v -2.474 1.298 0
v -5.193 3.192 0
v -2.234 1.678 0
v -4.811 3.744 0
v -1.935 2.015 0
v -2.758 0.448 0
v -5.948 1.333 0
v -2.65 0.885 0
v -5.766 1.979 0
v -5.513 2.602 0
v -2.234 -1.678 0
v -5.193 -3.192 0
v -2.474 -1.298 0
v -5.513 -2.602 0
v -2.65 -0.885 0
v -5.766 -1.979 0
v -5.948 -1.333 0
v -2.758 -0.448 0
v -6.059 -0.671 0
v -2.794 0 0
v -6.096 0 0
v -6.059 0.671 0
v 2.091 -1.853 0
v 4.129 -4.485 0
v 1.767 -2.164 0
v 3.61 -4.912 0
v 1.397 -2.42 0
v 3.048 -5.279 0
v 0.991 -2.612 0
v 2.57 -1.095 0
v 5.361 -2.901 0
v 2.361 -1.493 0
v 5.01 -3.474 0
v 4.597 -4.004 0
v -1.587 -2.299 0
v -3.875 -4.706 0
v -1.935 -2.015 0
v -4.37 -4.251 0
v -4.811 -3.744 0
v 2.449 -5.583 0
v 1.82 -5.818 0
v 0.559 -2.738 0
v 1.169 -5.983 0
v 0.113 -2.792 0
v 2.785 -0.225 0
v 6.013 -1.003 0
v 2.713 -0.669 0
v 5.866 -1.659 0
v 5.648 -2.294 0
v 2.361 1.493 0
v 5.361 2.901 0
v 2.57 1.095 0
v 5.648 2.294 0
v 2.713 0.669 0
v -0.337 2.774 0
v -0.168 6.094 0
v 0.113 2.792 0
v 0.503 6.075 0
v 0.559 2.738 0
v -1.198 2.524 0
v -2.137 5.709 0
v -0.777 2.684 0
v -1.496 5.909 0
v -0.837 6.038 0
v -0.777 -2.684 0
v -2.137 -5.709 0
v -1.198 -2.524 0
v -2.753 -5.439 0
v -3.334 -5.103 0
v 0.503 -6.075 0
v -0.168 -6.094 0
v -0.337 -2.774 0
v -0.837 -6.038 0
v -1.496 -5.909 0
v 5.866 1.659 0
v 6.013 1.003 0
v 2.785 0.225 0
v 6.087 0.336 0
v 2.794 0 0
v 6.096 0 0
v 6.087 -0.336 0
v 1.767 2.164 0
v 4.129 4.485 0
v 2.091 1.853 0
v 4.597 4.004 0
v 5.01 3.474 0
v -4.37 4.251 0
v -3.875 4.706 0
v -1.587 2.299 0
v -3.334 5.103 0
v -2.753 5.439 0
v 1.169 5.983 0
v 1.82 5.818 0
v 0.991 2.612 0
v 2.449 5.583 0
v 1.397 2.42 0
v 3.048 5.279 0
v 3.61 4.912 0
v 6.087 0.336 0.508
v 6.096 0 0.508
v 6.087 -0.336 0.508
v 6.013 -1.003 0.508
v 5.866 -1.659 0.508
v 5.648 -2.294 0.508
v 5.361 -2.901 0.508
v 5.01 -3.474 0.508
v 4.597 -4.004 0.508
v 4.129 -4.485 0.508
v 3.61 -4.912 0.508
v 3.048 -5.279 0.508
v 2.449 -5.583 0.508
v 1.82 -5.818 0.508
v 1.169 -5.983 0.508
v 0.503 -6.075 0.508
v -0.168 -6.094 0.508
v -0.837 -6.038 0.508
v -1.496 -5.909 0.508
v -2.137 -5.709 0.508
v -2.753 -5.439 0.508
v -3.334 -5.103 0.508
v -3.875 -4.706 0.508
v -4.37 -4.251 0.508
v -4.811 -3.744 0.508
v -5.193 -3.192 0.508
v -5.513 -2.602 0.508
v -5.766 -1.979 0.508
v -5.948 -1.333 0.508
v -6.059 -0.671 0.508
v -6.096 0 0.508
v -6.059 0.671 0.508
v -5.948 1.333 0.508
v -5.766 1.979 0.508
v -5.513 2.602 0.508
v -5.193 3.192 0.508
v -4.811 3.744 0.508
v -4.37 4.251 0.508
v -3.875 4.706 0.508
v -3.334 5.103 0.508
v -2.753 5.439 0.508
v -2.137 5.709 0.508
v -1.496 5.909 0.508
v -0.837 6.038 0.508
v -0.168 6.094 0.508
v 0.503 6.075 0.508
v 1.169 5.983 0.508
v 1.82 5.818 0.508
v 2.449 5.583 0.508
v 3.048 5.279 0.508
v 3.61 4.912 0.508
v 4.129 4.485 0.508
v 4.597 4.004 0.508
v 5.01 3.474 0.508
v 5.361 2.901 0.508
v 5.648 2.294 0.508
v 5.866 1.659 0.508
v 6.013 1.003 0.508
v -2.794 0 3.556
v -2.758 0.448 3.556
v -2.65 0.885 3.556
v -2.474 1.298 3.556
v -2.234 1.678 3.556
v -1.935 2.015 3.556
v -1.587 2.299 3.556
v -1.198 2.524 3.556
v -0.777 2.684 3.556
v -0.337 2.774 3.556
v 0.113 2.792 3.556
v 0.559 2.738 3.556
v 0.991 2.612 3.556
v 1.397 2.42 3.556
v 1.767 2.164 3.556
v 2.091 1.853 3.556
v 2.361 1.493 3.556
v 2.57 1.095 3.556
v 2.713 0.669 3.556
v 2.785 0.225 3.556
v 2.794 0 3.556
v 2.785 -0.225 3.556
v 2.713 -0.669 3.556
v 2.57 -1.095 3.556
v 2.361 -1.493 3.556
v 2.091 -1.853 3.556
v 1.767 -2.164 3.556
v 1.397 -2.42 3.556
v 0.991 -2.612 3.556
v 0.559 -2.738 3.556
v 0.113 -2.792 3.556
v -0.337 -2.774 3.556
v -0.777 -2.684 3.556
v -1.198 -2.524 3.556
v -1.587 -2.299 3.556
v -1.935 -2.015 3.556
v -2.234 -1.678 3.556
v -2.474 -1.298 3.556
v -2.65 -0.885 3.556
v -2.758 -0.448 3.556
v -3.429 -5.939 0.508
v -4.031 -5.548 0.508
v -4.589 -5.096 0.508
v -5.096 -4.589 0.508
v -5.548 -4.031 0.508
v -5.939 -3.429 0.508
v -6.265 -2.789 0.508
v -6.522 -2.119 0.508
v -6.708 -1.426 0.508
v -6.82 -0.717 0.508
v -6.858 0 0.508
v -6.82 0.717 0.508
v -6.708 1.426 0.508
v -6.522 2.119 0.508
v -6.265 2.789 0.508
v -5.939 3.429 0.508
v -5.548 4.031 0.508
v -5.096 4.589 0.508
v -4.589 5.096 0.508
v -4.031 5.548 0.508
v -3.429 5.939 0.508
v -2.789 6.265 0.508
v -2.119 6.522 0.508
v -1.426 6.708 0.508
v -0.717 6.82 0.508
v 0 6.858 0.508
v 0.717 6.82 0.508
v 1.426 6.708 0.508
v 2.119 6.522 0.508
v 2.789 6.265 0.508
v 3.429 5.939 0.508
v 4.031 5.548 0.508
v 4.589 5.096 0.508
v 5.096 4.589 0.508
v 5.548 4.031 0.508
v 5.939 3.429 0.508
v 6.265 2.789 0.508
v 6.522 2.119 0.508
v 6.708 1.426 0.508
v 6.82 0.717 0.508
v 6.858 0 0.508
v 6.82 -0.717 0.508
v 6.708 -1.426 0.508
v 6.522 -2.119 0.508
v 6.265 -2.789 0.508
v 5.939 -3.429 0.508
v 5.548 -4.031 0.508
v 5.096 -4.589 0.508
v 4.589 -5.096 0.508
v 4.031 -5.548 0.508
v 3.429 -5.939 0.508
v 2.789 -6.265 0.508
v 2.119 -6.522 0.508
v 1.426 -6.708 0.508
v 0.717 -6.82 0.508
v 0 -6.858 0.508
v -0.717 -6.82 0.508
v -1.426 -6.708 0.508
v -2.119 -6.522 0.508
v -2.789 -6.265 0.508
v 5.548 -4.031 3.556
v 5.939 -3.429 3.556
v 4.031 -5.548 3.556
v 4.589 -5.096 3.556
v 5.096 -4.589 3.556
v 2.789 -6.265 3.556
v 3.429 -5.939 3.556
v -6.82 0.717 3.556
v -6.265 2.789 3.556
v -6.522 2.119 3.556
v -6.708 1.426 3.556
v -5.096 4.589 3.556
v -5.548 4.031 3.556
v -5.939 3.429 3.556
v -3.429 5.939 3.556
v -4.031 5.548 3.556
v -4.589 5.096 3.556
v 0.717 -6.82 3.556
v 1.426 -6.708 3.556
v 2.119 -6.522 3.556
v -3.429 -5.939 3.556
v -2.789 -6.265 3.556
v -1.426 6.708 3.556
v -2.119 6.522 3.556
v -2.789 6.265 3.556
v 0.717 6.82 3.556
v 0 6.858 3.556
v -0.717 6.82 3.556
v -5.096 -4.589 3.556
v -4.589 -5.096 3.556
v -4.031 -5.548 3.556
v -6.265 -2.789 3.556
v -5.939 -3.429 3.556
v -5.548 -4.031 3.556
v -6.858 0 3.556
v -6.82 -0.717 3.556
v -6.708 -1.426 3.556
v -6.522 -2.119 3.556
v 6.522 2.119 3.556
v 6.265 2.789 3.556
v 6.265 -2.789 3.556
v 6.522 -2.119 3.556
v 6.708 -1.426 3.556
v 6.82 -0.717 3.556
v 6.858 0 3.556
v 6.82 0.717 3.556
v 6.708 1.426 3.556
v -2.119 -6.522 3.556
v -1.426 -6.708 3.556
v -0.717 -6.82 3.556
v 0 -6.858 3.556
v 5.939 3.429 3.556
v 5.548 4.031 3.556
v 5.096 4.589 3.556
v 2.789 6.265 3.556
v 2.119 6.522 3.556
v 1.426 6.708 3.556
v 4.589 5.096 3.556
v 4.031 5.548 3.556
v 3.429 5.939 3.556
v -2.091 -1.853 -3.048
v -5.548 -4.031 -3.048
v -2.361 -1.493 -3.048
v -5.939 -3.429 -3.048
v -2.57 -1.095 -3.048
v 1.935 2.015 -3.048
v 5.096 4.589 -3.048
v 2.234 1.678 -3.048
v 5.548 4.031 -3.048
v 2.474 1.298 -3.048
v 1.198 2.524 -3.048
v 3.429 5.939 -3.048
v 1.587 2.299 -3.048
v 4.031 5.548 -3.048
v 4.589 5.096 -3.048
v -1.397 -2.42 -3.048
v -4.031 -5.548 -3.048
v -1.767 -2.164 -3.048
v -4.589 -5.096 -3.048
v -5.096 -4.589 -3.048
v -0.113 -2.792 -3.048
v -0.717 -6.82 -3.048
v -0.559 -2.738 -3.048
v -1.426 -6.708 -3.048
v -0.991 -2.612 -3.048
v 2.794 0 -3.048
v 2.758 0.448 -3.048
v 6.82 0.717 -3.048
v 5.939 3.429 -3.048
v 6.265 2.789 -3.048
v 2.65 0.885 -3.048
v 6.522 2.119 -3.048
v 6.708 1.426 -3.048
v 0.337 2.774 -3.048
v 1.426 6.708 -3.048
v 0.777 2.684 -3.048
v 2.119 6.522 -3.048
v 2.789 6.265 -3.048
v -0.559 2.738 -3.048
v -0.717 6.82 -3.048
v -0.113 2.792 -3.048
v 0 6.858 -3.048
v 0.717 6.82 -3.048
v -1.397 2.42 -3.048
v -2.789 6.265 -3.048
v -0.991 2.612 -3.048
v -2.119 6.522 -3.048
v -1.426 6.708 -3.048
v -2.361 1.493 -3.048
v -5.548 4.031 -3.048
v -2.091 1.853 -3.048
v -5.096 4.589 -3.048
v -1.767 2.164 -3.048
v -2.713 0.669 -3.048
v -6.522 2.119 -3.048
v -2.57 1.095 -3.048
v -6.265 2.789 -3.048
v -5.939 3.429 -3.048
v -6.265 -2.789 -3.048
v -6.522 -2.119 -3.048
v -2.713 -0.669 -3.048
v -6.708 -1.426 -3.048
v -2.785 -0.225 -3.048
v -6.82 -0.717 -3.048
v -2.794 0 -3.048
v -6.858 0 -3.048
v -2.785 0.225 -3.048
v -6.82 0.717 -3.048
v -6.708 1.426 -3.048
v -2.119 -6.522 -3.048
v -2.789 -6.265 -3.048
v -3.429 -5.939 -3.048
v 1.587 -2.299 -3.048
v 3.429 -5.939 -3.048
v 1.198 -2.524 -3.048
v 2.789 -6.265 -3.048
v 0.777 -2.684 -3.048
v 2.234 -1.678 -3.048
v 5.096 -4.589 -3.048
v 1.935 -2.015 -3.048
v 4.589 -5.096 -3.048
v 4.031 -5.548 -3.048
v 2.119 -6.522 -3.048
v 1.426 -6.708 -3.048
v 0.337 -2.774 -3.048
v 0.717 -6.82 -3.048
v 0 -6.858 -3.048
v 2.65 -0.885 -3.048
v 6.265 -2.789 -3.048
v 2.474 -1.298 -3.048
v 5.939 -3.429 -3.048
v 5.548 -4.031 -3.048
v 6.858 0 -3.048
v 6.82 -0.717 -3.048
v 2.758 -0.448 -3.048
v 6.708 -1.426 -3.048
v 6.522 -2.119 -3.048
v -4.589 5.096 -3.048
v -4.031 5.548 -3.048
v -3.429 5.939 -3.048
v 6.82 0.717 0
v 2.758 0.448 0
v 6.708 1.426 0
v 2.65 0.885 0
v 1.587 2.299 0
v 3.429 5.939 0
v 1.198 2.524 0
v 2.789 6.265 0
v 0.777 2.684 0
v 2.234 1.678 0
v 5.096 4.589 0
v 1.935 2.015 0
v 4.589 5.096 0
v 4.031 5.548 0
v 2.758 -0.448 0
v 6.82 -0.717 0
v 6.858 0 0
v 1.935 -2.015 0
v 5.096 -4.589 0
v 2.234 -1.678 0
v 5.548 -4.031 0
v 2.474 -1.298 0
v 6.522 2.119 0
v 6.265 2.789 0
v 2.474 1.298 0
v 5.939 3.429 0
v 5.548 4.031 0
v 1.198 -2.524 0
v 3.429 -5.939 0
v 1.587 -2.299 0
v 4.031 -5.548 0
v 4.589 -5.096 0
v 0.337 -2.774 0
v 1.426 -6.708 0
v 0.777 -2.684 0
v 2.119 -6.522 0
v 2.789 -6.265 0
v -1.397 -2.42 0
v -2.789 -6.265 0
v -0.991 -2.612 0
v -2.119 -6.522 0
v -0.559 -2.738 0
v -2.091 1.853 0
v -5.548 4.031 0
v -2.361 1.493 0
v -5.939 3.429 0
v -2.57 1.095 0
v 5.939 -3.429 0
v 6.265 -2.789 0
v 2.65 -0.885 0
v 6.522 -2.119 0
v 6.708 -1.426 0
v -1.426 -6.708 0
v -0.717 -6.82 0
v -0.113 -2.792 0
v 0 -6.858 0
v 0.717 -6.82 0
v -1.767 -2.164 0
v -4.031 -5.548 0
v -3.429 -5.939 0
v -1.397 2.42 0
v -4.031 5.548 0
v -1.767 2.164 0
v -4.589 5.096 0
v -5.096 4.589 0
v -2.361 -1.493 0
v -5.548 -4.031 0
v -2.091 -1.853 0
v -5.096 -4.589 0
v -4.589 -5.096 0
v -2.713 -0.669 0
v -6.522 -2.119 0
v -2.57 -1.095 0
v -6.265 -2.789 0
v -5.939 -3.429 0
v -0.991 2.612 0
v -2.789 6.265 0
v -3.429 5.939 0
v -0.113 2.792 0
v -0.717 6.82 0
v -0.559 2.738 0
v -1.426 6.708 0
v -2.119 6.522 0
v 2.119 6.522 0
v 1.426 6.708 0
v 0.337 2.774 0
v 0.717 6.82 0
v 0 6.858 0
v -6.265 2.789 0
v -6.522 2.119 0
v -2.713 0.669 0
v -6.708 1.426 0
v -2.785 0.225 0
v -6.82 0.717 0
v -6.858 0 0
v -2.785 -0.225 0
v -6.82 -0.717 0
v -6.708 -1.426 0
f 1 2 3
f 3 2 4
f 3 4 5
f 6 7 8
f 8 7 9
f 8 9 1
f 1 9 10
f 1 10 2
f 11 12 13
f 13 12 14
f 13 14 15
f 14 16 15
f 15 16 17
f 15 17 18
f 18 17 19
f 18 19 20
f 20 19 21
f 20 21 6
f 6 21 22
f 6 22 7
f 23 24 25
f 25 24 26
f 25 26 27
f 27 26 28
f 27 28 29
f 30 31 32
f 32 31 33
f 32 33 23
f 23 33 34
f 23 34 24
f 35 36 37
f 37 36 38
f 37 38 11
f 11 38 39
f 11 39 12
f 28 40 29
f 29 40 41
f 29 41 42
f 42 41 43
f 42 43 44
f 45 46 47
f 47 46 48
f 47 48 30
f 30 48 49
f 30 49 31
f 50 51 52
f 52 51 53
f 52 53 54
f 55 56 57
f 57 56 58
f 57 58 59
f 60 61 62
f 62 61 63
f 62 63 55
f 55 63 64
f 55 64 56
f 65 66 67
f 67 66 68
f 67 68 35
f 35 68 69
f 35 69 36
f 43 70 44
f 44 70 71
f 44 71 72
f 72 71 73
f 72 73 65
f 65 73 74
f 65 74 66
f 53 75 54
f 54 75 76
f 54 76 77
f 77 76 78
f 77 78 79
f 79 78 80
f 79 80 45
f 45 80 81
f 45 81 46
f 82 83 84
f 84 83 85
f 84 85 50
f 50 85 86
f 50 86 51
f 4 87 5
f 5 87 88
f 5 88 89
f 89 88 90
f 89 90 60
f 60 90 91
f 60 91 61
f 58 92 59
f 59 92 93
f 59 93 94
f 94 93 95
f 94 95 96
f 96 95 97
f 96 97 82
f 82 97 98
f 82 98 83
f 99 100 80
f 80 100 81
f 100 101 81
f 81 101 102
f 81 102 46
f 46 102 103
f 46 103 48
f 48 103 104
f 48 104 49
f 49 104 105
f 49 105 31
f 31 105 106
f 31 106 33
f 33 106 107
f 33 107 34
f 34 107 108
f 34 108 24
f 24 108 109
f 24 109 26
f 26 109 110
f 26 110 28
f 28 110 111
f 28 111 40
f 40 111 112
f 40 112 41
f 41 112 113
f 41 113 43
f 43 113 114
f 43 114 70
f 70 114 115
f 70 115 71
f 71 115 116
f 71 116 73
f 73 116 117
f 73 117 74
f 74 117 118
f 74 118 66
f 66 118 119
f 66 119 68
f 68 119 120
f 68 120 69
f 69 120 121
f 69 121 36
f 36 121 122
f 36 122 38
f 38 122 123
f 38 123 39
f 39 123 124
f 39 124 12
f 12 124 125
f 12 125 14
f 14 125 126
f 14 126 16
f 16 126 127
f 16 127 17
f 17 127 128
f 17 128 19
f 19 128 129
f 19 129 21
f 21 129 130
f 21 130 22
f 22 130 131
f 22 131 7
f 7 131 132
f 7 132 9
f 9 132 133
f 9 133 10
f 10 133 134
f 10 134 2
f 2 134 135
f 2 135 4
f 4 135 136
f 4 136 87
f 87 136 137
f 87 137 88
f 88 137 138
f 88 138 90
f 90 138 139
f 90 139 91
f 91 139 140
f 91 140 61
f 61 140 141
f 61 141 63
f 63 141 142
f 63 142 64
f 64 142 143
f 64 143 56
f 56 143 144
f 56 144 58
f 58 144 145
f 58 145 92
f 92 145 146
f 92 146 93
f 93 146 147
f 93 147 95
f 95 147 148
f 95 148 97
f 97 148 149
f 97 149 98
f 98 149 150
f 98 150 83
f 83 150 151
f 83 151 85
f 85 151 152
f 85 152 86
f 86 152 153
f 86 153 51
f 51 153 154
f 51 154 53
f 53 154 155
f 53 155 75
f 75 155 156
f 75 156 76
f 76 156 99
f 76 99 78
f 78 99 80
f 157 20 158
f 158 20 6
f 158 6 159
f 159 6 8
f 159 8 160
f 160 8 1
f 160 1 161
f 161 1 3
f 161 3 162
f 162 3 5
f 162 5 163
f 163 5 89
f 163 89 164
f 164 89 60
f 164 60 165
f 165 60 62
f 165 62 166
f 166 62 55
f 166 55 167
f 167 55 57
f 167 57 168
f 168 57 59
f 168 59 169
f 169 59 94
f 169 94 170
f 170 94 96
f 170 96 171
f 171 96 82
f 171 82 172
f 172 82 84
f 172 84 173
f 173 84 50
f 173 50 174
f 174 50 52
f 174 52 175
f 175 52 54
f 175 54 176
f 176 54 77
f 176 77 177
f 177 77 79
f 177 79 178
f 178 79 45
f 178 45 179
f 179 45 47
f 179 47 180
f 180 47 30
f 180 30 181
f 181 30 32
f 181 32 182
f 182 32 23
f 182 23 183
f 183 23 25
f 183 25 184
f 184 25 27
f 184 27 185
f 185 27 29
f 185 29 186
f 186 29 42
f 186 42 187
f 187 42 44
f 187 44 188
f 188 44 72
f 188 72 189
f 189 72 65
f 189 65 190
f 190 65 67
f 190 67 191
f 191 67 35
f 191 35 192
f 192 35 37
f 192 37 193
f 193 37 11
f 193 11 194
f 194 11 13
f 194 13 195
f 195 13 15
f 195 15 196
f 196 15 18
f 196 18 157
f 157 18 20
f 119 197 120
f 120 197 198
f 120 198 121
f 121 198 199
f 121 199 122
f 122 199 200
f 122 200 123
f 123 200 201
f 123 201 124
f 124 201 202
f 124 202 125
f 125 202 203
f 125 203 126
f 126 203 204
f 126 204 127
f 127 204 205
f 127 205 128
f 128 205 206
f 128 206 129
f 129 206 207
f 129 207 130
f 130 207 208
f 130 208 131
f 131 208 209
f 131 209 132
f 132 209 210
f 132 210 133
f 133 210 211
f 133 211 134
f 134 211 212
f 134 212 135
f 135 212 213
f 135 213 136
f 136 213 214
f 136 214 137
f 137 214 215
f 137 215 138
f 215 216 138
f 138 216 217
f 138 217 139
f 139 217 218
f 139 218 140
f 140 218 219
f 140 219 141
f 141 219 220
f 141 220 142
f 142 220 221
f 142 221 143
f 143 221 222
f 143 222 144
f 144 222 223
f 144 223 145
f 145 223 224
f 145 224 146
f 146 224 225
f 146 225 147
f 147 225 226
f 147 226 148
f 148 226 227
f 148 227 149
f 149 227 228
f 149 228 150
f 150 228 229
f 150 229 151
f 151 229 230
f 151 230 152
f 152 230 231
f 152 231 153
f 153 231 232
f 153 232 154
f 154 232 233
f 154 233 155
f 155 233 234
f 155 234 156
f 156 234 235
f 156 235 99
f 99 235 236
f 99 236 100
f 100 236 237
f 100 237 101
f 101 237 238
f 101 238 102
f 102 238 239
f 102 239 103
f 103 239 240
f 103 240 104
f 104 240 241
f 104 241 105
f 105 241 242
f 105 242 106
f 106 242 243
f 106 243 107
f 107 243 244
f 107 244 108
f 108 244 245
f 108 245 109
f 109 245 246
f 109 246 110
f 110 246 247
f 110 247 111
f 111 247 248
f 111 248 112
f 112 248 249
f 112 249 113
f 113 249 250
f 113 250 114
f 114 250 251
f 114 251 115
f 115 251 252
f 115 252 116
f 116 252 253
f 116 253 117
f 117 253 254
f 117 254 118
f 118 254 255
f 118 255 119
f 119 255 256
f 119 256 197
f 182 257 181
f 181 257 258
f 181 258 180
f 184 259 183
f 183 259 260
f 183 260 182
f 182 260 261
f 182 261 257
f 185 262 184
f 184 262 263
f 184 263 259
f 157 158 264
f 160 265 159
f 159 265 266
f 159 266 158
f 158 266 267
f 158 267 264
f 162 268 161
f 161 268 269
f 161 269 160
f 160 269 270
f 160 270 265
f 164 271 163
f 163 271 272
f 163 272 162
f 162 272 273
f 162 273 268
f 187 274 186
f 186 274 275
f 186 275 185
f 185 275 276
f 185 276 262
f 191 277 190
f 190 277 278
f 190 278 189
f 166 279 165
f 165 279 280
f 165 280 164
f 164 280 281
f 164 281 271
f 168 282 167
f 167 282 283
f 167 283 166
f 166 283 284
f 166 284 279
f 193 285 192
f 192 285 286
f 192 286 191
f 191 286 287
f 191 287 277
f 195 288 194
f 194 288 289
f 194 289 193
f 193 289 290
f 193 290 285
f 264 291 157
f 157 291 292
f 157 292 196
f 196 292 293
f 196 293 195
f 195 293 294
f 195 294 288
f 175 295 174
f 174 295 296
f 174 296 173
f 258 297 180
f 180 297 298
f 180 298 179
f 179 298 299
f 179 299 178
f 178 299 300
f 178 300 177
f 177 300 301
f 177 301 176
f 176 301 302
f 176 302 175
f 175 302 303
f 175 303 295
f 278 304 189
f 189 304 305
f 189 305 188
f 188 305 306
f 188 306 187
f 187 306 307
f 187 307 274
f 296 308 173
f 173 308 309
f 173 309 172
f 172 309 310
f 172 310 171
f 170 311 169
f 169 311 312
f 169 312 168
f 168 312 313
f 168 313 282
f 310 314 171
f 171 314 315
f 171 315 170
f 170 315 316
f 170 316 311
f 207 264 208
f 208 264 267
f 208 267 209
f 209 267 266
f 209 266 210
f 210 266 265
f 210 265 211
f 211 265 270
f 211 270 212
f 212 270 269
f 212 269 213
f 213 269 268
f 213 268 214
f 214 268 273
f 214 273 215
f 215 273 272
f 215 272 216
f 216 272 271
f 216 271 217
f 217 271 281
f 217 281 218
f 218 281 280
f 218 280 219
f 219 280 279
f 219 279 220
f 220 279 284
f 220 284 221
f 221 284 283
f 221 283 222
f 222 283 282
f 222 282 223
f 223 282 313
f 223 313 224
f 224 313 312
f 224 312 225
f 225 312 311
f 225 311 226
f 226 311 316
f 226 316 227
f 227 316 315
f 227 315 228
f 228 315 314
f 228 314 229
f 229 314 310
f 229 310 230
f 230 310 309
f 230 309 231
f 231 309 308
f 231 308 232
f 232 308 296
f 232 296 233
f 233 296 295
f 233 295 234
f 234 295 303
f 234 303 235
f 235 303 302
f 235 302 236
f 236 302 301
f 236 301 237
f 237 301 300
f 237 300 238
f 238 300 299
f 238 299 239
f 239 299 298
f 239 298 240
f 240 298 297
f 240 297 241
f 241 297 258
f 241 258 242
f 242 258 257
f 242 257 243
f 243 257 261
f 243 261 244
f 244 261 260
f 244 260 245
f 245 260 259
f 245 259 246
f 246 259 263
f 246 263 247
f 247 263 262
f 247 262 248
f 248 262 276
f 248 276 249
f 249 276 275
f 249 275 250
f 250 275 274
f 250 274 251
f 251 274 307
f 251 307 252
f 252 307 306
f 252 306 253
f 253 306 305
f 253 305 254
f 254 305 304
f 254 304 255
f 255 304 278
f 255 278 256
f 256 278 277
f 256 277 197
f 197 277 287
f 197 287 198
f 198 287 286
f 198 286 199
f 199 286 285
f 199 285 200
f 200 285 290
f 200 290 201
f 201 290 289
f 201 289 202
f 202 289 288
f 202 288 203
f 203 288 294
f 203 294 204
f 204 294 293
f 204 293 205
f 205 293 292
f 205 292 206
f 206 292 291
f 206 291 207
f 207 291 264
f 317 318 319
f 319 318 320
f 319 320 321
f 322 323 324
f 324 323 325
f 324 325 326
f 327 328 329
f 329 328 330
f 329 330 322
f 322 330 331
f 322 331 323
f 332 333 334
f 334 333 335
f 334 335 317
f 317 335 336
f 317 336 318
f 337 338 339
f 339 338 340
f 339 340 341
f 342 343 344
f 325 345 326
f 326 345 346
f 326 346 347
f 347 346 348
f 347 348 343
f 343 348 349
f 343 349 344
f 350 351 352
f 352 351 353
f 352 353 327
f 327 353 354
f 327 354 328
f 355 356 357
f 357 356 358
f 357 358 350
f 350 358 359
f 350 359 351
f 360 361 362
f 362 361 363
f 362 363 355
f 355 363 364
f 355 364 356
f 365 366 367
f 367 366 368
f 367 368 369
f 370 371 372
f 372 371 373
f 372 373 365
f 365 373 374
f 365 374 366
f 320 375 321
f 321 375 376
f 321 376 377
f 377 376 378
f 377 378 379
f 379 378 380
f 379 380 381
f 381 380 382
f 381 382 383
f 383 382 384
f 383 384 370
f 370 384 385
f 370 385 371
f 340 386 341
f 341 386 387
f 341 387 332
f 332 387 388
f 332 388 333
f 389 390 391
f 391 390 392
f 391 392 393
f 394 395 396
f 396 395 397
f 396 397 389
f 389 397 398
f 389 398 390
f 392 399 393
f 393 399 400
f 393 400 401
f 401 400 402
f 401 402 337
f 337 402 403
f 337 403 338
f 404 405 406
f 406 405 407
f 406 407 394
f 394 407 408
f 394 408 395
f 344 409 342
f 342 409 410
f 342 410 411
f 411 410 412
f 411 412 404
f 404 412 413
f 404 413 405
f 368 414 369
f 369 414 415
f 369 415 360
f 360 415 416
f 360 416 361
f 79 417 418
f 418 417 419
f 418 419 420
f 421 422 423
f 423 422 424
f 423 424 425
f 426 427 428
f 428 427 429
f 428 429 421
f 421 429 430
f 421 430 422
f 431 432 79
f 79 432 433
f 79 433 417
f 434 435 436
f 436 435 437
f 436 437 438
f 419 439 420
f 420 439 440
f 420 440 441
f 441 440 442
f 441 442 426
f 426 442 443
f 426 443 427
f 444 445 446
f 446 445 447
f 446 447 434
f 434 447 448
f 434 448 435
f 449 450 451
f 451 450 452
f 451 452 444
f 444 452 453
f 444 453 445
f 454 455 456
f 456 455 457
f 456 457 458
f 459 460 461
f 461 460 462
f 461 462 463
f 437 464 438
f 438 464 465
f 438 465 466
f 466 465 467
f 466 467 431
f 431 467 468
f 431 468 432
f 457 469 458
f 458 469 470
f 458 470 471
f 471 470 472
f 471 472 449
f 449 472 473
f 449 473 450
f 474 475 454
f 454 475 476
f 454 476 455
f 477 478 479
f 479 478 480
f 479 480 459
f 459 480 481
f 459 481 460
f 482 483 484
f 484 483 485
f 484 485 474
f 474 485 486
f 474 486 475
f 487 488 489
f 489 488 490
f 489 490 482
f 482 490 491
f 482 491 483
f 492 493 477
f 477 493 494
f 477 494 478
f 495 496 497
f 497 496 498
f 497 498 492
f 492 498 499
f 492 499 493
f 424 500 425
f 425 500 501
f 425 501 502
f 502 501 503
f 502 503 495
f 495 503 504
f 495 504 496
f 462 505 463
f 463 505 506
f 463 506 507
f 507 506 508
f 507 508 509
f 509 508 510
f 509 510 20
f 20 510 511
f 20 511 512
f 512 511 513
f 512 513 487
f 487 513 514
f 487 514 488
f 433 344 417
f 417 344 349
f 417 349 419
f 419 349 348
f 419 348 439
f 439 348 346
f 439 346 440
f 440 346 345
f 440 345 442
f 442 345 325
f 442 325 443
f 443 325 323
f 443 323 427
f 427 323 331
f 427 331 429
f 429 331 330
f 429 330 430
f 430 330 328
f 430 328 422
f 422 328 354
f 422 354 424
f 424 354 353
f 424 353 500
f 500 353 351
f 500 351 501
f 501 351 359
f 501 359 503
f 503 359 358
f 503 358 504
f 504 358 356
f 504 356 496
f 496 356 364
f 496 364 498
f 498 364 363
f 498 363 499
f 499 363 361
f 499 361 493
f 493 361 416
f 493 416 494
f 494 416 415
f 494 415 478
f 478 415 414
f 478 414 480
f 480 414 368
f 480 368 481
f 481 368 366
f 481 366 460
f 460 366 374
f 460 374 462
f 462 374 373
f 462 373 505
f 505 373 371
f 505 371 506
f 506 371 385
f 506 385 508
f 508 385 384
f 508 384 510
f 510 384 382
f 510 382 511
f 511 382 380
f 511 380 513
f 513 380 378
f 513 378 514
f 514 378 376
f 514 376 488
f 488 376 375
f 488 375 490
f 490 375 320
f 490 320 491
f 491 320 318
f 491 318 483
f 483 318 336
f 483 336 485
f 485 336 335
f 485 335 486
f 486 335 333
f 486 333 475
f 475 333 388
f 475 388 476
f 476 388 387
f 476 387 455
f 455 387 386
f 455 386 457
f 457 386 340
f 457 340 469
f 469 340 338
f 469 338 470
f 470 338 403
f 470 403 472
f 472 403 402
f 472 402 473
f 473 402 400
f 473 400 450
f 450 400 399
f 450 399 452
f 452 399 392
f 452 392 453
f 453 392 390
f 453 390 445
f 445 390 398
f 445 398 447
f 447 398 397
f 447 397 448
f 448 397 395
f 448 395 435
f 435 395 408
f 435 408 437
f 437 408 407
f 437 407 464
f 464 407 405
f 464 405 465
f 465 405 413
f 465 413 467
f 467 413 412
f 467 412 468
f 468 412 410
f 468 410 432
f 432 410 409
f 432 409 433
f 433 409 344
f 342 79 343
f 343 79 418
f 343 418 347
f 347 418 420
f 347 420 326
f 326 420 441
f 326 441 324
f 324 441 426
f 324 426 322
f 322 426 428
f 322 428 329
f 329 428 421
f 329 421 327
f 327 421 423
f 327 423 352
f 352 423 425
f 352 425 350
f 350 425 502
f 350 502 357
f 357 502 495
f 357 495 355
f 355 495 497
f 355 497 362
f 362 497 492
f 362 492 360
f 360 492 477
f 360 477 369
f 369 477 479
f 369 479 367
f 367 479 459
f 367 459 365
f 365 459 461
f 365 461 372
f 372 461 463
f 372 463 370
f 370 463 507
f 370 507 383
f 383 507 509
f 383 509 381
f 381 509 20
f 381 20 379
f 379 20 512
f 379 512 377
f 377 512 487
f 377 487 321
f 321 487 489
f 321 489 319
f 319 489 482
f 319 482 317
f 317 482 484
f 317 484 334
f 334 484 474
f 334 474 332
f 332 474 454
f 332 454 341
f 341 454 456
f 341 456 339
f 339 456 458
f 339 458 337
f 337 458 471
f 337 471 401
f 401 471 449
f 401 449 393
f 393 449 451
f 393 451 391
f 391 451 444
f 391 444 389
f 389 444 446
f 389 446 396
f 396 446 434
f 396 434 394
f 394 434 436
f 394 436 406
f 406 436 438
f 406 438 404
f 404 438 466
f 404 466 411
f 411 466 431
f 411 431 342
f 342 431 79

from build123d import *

# Parameters (mm, degrees)
SKETCH1_R           = 6.096
SKETCH1_R_2         = 2.794
BOSS_EXTRUDE2_DEPTH = 0.508
SKETCH3_R           = 6.858
SKETCH3_R_2         = 2.794
BOSS_EXTRUDE3_DEPTH = 3.048
SKETCH4_R           = 6.858
SKETCH4_R_2         = 2.794
BOSS_EXTRUDE4_DEPTH = 3.048


with BuildPart() as part:
    # Sketch1 → Boss-Extrude2 (new body)
    with BuildSketch(Plane.XY):
        Circle(SKETCH1_R)
        Circle(SKETCH1_R_2, mode=Mode.SUBTRACT)
    extrude(amount=BOSS_EXTRUDE2_DEPTH)

    # Sketch3 → Boss-Extrude3 (add)
    with BuildSketch(Plane.XY.offset(0.508)):
        Circle(SKETCH3_R)
        Circle(SKETCH3_R_2, mode=Mode.SUBTRACT)
    extrude(amount=BOSS_EXTRUDE3_DEPTH)


with BuildPart() as body_2:
    # Sketch4 → Boss-Extrude4 (new body)
    with BuildSketch(Plane(origin=(0, 0, 0), x_dir=(-1, 0, 0), z_dir=(0, 0, -1))):
        Circle(SKETCH4_R)
        Circle(SKETCH4_R_2, mode=Mode.SUBTRACT)
    extrude(amount=BOSS_EXTRUDE4_DEPTH)


solid = Compound([part.part, body_2.part])
